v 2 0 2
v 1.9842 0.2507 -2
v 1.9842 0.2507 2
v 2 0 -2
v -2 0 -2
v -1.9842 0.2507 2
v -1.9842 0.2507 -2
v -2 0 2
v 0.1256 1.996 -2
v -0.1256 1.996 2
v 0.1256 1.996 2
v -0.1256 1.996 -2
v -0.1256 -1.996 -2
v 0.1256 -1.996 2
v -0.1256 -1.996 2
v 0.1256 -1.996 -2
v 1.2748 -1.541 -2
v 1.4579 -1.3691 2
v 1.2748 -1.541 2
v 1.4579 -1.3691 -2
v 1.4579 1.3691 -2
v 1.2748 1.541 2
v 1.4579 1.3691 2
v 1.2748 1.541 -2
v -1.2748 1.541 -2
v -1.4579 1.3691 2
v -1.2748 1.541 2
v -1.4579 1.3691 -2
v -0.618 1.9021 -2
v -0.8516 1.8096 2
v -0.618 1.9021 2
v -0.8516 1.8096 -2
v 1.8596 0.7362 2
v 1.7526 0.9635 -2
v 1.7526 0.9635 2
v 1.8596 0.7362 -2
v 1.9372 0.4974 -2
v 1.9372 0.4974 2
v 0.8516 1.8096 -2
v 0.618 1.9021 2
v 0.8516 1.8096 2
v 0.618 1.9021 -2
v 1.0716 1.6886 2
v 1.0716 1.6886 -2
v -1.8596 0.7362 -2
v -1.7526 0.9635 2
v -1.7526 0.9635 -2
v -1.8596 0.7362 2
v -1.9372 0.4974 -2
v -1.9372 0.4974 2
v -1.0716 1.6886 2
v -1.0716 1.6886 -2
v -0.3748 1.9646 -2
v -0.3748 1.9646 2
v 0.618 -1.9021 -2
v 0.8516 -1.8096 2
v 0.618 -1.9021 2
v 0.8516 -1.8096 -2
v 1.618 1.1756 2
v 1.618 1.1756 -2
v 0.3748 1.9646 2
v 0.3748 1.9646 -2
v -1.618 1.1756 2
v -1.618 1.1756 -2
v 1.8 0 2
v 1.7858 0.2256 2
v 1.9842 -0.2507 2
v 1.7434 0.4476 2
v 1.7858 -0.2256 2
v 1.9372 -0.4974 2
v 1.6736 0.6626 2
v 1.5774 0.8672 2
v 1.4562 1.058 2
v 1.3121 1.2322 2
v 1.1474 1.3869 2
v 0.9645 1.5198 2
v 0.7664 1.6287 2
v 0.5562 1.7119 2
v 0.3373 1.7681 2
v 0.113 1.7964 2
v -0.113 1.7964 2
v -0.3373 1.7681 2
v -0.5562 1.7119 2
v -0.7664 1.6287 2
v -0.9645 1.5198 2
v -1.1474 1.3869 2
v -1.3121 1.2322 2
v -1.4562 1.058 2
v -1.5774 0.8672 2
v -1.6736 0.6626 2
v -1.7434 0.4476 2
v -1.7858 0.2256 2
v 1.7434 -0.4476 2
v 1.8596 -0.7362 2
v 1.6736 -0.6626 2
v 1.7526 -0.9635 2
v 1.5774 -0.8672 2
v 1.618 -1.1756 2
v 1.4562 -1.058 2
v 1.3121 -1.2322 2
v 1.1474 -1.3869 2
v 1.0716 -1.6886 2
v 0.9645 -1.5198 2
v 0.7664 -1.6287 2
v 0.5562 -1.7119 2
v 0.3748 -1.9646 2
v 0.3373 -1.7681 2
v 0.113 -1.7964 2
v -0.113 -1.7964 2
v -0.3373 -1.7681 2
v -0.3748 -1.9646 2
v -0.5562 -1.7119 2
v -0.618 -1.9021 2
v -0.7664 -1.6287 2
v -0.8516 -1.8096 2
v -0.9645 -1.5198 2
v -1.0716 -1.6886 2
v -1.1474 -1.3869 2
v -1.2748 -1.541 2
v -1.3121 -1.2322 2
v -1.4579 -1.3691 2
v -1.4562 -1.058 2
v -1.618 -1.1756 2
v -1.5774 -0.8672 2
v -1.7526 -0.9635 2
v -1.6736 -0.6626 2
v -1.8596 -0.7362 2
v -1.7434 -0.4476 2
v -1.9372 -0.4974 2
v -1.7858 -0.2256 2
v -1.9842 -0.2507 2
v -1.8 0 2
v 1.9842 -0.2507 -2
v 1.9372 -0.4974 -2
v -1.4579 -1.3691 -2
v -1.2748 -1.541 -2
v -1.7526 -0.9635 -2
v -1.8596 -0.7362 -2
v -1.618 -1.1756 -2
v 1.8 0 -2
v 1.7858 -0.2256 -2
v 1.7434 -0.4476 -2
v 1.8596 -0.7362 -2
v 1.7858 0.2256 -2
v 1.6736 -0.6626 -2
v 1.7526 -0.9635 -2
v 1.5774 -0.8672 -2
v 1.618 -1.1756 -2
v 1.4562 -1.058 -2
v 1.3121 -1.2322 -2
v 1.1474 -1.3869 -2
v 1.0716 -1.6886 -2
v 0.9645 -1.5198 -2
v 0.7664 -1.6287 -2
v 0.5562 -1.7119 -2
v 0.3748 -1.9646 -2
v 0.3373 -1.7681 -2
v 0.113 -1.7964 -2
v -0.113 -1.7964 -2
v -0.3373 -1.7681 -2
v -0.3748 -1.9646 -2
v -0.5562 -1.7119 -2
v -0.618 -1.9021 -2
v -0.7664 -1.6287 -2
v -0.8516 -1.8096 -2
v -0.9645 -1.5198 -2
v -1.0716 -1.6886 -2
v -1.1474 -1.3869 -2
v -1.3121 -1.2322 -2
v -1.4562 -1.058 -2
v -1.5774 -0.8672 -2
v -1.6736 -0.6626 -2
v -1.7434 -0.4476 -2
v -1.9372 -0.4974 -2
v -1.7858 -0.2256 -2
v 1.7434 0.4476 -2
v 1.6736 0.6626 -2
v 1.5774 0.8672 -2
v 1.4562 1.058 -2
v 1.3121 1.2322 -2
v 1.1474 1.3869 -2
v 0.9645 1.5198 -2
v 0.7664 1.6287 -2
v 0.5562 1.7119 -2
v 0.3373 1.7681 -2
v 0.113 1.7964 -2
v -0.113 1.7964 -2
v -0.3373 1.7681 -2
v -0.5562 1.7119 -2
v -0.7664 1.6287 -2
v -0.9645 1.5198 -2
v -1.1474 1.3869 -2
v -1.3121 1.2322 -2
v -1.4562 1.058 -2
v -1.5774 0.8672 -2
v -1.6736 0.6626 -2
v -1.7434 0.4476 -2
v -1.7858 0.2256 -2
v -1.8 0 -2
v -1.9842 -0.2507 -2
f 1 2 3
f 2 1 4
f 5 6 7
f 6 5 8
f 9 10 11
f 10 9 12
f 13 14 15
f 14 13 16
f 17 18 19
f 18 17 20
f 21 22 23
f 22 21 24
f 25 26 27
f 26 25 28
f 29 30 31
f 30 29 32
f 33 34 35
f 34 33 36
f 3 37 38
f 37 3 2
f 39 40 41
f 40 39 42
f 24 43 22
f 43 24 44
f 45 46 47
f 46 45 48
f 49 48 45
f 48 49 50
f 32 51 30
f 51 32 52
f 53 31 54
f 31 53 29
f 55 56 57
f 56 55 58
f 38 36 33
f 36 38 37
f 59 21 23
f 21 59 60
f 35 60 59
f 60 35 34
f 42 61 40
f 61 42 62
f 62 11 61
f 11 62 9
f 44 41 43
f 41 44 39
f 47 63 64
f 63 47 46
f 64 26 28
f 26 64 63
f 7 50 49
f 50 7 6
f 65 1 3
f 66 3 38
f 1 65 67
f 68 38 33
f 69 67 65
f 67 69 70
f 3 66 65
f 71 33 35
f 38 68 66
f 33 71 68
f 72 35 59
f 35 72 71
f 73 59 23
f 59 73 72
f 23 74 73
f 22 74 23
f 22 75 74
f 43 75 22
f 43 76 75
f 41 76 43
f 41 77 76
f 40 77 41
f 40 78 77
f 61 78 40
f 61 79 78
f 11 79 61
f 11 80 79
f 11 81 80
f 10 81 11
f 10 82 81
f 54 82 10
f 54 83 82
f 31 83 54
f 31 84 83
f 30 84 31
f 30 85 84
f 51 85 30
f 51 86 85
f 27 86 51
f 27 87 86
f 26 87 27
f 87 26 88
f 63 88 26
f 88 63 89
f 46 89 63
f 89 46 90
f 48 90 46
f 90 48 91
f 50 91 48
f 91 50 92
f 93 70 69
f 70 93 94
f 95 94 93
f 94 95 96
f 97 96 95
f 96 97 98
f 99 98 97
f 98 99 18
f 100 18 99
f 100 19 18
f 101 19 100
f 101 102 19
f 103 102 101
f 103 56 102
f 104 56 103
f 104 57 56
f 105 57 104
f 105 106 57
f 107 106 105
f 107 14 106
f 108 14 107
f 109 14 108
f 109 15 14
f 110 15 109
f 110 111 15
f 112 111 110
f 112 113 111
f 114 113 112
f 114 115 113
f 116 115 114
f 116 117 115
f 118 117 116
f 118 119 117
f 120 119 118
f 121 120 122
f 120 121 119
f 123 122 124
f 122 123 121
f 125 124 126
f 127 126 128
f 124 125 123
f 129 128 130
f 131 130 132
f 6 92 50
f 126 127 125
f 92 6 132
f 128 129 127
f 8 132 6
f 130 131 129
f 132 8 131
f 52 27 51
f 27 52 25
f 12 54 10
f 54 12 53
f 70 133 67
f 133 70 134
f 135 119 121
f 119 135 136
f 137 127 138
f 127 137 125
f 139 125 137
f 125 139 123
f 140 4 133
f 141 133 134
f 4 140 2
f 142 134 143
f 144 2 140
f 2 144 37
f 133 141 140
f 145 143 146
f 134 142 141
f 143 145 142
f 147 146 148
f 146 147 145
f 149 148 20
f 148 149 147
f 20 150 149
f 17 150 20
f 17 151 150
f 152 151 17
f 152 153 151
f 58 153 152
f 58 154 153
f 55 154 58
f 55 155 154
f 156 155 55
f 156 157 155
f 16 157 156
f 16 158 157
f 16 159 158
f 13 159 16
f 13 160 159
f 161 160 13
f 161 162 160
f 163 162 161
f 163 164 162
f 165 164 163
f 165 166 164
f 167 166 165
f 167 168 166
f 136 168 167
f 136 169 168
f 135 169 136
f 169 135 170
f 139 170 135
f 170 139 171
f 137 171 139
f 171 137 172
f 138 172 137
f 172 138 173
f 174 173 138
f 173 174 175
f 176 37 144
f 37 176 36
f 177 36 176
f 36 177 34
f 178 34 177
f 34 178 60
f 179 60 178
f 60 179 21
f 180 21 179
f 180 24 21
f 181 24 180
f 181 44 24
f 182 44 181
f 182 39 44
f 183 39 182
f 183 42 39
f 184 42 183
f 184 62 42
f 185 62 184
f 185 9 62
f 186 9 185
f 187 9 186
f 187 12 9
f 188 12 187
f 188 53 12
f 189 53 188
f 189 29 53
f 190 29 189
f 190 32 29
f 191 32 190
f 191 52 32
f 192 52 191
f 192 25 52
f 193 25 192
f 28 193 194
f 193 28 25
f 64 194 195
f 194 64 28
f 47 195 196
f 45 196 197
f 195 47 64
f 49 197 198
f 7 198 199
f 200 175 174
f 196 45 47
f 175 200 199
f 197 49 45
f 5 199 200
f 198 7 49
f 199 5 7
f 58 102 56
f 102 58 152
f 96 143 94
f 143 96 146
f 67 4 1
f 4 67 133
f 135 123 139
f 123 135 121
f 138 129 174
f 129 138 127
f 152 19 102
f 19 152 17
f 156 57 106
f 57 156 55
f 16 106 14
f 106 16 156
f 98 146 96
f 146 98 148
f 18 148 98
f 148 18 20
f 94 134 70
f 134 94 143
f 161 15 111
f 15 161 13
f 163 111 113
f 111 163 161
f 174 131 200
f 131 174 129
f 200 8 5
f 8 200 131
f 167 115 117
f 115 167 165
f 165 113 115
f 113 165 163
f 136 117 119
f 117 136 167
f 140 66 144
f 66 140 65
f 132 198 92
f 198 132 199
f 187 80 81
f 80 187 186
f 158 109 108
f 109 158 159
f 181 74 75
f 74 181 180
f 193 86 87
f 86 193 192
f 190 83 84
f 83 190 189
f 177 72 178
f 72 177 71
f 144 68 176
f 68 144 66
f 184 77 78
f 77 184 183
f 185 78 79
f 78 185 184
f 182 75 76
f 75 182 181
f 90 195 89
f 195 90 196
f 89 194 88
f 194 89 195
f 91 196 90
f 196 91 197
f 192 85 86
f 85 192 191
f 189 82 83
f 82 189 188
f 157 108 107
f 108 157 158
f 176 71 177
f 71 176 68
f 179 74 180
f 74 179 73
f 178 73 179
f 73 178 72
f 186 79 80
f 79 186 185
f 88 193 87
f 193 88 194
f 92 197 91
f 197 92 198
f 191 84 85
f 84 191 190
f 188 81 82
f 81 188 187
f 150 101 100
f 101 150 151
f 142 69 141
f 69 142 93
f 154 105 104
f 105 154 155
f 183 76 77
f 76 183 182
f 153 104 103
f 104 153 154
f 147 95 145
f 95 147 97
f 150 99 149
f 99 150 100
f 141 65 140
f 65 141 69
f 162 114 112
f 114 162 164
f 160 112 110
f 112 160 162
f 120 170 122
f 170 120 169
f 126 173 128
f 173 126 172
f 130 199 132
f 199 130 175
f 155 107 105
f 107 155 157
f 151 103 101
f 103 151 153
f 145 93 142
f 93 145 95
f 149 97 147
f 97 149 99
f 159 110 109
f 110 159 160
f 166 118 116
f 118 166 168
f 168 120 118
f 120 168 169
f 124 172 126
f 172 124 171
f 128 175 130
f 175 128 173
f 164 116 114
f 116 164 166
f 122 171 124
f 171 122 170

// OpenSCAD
$fn = 50;


difference() {
	union() {
		translate(v = [0, 0, -2.0000000000]) {
			cylinder(h = 4, r = 2.0000000000);
		}
	}
	union() {
		translate(v = [0, 0, -100.0000000000]) {
			cylinder(h = 200, r = 1.8000000000);
		}
	}
}
